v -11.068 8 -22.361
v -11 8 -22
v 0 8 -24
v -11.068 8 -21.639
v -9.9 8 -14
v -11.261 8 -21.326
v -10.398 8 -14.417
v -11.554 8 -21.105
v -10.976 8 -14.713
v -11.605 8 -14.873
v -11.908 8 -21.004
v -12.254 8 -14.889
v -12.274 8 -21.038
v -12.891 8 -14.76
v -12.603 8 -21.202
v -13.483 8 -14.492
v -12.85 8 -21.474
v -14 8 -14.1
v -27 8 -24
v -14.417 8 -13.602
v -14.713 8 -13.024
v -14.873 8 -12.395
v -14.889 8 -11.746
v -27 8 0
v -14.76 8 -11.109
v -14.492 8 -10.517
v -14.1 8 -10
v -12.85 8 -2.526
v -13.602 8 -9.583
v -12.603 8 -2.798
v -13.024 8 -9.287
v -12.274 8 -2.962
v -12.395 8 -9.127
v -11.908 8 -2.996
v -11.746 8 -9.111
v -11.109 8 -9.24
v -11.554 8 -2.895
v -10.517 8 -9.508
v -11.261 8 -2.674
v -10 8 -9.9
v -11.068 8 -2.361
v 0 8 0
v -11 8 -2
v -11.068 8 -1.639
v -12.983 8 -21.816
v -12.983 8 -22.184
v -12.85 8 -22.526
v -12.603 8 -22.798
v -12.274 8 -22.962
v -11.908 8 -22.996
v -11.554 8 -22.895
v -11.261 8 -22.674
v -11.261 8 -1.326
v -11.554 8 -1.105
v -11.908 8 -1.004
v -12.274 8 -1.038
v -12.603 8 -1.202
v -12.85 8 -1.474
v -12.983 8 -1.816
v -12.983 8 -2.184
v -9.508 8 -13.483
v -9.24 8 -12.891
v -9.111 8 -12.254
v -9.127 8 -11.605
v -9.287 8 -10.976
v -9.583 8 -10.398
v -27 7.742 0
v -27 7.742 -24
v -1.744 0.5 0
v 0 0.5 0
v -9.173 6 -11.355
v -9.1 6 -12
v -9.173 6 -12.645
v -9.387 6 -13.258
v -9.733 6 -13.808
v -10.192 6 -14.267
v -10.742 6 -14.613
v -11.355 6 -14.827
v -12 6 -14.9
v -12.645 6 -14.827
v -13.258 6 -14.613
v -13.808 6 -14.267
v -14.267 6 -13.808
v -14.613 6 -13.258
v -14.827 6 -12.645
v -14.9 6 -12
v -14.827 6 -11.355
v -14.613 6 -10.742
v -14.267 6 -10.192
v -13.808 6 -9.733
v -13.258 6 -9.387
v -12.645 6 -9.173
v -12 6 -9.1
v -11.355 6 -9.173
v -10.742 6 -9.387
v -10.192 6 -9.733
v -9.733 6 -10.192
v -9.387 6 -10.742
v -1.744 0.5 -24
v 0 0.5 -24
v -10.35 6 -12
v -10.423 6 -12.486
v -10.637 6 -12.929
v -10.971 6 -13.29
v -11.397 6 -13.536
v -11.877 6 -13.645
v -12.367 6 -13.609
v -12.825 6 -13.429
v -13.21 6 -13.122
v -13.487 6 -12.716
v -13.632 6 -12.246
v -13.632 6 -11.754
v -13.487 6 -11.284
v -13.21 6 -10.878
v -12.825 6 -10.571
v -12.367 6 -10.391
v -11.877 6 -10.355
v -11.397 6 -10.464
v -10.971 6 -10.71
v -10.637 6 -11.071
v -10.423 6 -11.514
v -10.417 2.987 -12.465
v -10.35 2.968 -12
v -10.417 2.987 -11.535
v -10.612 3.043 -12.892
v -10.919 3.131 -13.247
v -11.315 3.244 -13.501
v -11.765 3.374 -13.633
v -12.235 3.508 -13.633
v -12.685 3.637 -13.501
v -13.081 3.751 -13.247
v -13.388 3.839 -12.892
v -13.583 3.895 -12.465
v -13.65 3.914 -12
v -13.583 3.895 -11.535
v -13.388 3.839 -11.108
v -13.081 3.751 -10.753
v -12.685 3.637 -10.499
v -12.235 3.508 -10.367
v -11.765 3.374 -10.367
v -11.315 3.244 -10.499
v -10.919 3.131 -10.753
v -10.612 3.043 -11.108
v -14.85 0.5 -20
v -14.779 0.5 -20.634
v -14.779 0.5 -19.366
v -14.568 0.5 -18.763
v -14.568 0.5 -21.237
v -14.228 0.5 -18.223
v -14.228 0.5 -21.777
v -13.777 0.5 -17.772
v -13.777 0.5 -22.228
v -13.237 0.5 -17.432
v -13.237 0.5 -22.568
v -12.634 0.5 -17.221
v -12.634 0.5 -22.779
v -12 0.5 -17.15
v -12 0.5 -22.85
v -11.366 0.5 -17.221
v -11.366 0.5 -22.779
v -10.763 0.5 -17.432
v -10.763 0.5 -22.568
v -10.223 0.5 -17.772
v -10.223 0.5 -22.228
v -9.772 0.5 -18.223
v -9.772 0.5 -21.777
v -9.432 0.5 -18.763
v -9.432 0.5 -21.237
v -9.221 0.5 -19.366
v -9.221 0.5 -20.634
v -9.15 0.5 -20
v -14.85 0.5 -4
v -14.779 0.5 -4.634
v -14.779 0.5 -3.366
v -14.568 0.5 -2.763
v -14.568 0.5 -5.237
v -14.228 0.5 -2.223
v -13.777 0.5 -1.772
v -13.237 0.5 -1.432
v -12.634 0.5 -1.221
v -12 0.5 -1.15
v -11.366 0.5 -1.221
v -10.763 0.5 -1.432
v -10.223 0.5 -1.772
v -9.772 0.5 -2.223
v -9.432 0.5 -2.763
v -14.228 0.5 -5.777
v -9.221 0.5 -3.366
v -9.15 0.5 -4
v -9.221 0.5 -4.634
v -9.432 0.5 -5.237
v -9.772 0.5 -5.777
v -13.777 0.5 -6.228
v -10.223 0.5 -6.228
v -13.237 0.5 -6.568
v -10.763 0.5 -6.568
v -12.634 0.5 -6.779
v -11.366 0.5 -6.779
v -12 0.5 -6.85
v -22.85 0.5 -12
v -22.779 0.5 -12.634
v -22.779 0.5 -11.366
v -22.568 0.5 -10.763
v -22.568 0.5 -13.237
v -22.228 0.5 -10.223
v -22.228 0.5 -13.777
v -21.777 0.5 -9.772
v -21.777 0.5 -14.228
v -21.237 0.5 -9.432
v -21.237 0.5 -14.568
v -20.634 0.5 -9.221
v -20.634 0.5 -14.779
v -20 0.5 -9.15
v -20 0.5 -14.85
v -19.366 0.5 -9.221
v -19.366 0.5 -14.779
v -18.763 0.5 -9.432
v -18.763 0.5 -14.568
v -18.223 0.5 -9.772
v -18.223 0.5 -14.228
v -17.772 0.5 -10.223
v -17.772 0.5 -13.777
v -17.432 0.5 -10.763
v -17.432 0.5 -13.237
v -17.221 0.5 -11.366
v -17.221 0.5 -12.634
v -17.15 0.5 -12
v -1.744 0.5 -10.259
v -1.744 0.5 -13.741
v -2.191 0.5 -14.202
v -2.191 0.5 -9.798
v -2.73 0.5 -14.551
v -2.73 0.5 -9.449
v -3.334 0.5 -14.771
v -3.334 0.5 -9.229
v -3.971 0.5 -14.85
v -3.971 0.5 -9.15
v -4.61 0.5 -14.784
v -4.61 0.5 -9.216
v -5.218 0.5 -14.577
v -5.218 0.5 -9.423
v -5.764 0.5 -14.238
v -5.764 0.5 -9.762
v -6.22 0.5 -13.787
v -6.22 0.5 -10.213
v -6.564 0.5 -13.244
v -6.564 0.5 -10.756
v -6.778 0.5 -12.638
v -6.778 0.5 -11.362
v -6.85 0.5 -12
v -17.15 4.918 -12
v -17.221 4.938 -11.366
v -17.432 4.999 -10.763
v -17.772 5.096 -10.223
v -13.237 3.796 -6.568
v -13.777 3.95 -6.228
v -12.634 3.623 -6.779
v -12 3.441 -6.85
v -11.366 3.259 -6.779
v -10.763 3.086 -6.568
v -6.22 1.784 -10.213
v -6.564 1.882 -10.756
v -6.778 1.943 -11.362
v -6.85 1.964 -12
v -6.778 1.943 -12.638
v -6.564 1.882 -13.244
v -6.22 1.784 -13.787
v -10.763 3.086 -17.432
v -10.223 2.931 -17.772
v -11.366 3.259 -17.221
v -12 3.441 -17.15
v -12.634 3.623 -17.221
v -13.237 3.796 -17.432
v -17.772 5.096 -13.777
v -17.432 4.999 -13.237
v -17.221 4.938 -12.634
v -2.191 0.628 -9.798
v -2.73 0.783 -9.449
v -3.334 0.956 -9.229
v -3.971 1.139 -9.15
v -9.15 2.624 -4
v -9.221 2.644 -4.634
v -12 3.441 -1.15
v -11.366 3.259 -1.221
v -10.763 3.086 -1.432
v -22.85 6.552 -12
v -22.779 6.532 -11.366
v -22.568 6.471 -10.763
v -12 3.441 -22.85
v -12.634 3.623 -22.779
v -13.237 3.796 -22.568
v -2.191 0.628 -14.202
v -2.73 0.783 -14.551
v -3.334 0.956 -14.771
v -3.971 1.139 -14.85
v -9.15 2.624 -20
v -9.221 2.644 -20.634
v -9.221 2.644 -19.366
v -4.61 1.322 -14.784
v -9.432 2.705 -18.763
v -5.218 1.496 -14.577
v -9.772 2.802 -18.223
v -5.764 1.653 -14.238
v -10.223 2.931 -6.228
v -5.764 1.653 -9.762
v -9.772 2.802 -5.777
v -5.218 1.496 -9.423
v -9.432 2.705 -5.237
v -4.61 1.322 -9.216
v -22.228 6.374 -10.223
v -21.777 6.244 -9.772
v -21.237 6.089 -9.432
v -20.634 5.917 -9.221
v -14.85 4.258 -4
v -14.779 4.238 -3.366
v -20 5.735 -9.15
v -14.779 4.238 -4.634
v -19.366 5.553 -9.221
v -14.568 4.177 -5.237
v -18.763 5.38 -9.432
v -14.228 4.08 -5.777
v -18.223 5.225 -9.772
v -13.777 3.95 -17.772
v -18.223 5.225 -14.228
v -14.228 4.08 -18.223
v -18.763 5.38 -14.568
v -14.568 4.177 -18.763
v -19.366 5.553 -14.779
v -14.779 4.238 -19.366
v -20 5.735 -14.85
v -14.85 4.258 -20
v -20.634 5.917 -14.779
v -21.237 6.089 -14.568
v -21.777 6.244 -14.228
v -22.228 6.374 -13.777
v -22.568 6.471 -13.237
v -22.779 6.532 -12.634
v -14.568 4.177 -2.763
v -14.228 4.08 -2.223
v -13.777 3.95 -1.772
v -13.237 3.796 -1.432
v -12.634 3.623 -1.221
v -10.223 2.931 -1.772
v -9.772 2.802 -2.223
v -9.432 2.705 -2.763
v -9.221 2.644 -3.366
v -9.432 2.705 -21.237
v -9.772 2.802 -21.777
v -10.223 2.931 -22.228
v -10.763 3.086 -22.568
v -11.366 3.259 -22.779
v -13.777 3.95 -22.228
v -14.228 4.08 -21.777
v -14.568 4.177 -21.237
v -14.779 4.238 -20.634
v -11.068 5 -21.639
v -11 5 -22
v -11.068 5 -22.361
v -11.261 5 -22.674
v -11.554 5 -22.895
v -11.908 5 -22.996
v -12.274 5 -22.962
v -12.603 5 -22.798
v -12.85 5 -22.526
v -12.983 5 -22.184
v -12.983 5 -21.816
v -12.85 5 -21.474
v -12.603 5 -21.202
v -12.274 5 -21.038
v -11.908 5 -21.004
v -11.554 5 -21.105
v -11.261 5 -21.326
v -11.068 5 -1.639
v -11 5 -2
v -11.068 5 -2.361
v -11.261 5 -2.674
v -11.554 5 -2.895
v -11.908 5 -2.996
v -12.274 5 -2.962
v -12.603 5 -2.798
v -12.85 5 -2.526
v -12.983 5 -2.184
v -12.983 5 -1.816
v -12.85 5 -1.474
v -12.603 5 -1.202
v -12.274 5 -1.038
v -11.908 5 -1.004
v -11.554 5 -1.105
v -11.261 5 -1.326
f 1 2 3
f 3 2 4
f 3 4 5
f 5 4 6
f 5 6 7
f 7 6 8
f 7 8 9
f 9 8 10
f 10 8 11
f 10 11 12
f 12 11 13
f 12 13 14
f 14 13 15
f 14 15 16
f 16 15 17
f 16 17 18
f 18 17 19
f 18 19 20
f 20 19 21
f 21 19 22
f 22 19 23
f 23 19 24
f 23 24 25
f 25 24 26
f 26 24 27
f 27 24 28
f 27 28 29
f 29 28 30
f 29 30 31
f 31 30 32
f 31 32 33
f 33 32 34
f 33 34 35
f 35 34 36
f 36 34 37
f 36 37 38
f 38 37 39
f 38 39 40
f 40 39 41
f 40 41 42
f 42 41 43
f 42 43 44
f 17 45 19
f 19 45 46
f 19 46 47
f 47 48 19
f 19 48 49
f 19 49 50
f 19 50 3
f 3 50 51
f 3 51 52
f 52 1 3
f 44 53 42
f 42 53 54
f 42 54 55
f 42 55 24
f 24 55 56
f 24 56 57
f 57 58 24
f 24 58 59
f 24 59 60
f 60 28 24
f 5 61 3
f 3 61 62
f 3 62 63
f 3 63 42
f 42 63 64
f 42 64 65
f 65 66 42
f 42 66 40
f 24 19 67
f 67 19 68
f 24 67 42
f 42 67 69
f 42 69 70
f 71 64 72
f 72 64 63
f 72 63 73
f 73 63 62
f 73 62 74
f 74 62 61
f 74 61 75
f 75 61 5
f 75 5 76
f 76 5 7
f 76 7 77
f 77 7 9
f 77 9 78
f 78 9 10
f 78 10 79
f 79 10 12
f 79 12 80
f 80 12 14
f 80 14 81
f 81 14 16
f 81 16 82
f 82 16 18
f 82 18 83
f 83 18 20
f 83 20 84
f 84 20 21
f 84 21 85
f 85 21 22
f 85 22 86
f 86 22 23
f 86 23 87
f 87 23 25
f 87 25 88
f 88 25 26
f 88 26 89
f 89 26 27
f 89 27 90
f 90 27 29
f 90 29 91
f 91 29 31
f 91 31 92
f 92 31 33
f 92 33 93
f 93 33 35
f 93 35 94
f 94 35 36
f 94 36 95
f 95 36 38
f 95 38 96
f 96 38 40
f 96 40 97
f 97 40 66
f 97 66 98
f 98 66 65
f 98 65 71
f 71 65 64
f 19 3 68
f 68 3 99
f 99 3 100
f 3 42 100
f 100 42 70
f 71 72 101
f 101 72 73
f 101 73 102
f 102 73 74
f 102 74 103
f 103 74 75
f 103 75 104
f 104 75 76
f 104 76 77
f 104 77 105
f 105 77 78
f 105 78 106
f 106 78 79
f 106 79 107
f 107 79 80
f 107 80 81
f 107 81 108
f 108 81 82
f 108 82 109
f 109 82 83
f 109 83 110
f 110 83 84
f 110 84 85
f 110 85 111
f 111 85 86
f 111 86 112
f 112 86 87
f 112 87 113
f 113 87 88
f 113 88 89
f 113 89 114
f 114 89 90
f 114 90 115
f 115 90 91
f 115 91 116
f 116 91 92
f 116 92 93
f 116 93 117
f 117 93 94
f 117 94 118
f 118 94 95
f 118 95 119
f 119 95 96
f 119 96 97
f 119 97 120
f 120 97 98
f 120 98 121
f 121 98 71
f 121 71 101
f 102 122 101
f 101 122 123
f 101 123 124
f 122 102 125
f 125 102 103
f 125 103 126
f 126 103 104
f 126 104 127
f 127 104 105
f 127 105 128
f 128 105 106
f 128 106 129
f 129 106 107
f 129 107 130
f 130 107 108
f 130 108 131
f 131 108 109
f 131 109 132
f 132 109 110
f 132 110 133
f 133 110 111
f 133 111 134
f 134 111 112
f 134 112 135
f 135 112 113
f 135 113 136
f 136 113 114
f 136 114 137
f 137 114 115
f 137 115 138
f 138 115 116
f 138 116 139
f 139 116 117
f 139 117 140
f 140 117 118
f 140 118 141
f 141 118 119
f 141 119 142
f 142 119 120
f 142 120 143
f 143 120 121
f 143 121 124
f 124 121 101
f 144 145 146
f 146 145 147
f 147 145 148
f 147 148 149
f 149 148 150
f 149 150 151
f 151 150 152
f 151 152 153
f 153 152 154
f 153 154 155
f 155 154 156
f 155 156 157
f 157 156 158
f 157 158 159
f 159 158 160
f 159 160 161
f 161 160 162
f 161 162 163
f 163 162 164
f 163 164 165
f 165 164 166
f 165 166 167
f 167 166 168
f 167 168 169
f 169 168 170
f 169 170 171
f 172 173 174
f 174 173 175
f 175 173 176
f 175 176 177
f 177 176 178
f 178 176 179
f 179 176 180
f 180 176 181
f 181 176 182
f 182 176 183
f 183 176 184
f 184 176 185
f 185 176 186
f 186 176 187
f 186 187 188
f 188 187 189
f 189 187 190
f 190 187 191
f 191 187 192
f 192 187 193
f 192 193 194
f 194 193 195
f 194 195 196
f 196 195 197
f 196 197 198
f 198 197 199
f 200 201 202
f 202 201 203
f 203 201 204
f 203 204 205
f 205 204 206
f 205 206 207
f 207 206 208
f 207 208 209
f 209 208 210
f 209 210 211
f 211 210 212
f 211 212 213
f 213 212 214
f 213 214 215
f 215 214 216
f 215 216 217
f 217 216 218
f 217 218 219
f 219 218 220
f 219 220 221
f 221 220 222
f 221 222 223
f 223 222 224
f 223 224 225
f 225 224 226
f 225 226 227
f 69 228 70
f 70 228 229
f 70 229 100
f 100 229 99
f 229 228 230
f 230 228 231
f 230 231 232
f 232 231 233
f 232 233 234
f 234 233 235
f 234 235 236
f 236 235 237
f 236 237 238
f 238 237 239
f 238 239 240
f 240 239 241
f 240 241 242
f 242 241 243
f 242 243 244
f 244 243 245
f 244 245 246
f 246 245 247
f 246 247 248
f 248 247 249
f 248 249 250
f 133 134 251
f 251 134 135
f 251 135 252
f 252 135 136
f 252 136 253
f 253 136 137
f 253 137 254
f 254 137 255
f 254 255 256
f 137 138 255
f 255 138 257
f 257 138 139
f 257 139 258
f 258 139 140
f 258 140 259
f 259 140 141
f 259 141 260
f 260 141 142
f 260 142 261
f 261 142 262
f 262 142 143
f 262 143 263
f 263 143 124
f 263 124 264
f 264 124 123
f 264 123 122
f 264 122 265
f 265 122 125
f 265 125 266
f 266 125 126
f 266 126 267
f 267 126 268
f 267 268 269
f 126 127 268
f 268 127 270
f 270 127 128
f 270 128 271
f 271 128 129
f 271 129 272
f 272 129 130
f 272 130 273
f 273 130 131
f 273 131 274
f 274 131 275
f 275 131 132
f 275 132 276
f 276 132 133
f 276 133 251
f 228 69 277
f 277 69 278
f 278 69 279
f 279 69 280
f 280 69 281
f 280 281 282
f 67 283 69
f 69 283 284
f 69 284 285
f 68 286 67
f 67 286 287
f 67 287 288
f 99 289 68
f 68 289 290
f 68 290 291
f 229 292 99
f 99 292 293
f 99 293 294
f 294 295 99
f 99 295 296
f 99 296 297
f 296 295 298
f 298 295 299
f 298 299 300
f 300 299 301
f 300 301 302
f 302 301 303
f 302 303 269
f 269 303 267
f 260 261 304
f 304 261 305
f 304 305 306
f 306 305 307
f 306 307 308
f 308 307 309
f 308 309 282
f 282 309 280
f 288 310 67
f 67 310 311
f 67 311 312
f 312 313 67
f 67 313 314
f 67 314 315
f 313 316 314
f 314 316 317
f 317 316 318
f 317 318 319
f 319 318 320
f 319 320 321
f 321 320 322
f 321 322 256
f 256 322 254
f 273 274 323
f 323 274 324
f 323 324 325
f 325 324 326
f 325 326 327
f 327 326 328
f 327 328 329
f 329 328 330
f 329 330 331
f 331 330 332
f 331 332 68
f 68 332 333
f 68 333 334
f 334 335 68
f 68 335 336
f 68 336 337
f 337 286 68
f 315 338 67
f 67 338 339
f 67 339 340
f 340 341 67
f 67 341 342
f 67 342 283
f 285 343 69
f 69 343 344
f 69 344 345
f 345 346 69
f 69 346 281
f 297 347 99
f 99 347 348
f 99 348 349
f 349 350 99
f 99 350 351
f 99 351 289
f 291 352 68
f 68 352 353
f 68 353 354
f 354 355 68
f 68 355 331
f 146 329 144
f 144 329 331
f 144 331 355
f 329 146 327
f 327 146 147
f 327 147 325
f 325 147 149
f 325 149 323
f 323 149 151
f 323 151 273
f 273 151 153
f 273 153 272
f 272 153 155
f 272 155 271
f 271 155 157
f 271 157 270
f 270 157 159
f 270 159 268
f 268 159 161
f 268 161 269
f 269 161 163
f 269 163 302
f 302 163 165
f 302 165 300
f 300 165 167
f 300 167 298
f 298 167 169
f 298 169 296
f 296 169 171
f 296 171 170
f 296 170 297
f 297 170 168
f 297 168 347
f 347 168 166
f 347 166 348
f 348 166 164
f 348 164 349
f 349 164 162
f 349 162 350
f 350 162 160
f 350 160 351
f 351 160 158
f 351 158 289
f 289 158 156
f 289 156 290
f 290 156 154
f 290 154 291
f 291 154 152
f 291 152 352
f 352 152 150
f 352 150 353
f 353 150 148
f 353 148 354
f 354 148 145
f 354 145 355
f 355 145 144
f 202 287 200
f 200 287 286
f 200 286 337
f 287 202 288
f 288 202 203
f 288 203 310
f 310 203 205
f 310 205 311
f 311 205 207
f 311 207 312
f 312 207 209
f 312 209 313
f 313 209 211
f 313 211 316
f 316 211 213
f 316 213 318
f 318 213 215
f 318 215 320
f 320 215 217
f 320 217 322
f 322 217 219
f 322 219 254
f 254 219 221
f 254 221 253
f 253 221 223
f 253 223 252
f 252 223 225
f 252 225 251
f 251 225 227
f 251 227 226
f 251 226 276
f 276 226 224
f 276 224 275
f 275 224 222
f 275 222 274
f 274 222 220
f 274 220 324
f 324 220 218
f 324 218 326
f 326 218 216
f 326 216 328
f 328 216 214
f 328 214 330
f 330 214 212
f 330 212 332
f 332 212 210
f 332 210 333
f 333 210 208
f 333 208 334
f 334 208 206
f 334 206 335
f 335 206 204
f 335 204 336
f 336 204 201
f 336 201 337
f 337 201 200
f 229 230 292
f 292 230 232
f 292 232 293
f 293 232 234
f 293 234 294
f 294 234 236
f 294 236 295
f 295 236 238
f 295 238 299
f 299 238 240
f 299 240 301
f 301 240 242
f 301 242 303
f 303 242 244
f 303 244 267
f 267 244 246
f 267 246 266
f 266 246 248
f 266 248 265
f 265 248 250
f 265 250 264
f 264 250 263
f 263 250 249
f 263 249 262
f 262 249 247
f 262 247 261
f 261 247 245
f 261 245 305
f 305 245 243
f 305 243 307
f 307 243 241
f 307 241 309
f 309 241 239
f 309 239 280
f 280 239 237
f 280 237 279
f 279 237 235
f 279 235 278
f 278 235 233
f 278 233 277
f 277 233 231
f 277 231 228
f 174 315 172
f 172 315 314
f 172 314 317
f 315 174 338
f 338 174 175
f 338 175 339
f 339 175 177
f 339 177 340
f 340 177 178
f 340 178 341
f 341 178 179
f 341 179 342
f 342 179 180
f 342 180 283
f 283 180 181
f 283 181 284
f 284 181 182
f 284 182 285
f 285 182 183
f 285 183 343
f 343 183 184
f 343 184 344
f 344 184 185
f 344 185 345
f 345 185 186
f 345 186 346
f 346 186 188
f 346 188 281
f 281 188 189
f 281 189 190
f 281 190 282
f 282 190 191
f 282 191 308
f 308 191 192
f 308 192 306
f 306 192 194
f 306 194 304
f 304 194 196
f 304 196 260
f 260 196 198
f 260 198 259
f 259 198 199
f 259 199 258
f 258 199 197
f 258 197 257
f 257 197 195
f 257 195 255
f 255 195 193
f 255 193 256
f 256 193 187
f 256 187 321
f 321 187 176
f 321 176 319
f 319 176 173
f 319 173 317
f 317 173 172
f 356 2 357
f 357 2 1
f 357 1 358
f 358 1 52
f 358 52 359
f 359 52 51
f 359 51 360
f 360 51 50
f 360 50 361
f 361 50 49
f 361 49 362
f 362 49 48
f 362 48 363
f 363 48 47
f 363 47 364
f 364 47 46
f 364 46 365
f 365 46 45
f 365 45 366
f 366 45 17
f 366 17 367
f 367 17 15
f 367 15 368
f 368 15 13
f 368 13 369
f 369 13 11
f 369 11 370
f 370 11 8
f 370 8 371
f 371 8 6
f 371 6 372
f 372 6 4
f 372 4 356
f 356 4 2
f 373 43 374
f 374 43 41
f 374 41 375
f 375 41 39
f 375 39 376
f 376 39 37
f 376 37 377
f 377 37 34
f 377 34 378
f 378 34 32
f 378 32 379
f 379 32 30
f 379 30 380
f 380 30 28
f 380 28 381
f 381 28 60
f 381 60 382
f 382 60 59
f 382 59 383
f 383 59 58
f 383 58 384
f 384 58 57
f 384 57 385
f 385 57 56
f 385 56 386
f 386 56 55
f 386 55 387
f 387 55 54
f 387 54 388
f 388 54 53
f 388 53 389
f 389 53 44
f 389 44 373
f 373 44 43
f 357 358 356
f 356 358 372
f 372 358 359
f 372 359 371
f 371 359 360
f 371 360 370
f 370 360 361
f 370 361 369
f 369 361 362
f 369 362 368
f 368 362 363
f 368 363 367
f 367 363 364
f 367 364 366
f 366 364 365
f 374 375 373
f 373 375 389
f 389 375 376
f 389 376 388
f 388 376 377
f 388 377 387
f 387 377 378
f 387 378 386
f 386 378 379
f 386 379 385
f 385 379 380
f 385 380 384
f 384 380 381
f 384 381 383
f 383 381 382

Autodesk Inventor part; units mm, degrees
ref_plane "YZ Plane" through (0, 0, 0) normal (1, 0, 0) x (0, 1, 0)
ref_plane "XZ Plane" through (0, 0, 0) normal (0, 1, 0) x (-1, 0, 0)
sketch "Sketch1" plane through (0, 0, 0) normal (0, 1, 0) x (-1, 0, 0)
  line L0 (0, 0) -> (27, 0)
  line L1 (27, 0) -> (27, -24)
  line L2 (27, -24) -> (0, -24)
  line L3 (0, -24) -> (0, 0)
  dimension "d0" = 27
  dimension "d1" = 24
extrude "Extrusion1" add sketch "Sketch1" along normal blind 8
sketch "Sketch2" plane through (0, 0, -24) normal (0, 0, -1) x (-1, 0, 0)
  line L0 (0, 0) -> (27, 0) projected
  line L1 (0, 0) -> (46.1678, 13.2384)
  line L2 (0, 0) -> (48.0283, 0) construction
  line L3 (0, 8) -> (27, 8) projected
  line L4 (27, 0) -> (27, 8) projected
  line L5 (0, 8) -> (27, 8)
  line L6 (27, 8) -> (27, 0)
  line L7 (27, 0) -> (0, 0)
  line L8 (0, 0) -> (0, 8)
  point P0 (27, 7.7421)
  dimension "d4" = 16
extrude "Extrusion2" cut sketch "Sketch2" against normal blind 30 contours L1 L4 L0
ref_plane "Work Plane1" through (0, 0, 0) normal (0, -1, 0) x (1, 0, 0)
sketch "Sketch3" plane through (0, 0, 0) normal (0, -1, 0) x (1, 0, 0)
  line L0 (0, 0) -> (0, -24) projected
  line L1 (0, -12) -> (-4, -12)
  circle A0 centre (-4, -12) radius 2.85
  line L2 (-4, -12) -> (-20, -12)
  line L3 (-12, -12) -> (-12, -20)
  line L4 (-12, -20) -> (-12, -4)
  circle A1 centre (-12, -20) radius 2.85
  circle A2 centre (-20, -12) radius 2.85
  circle A3 centre (-12, -4) radius 2.85
  dimension "d8" = 4
  dimension "d9" = 5.7
  dimension "d10" = 16
  dimension "d11" = 8
  dimension "d12" = 16
  dimension "d13" = 5.7
  dimension "d14" = 5.7
  dimension "d15" = 5.7
extrude "Extrusion3" add sketch "Sketch3" against normal blind 8
sketch "Sketch4" plane through (-4, 0, -12) normal (0, -1, 0) x (1, 0, 0)
  line L0 (4, 12) -> (4, -12) projected
  line L1 (4, -12) -> (-23.2805, -12)
  line L2 (-23.2805, -12) -> (-23.2805, 12)
  line L3 (-23.2805, 12) -> (4, 12)
  line L4 (4, 12) -> (4, -12)
extrude "Extrusion4" cut sketch "Sketch4" against normal blind 0.5
sketch "Sketch5" plane through (0, 8, 0) normal (0, 1, 0) x (1, 0, 0)
  line L0 (0, 0) -> (0, 24) projected
  line L1 (-27, 24) -> (-27, 0) projected
  line L2 (0, 0) -> (-27, 0)
  line L3 (-27, 0) -> (-27, 24)
  line L4 (-27, 24) -> (0, 24)
  line L5 (0, 24) -> (0, 0)
  circle A0 centre (-12, 4) radius 2.85 projected
  circle A1 centre (-12, 20) radius 2.85 projected
  line L6 (-12, 4) -> (-12, 20)
  arc A2 (-1.7437, 13.7412) -> (-1.7437, 10.2588) centre (-4, 12) ccw projected
  circle A3 centre (-20, 12) radius 2.85 projected
  line L7 (-4, 12) -> (-20, 12)
  circle A4 centre (-12, 12) radius 1.65
  dimension "d20" = 3.3
extrude "Extrusion5" cut sketch "Sketch5" against normal blind 30 contours A4 L7 L6 | L6 L7 A4 | L7 A4 L6 | L6 A4 L7
sketch "Sketch6" plane through (0, 8, 0) normal (0, 1, 0) x (1, 0, 0)
  circle A0 centre (-12, 12) radius 1.65 projected
  circle A1 centre (-12, 12) radius 2.9
  point P0 (0, 0)
  dimension "d23" = 5.8
extrude "Extrusion6" cut sketch "Sketch6" against normal blind 2
sketch "Sketch7" plane through (0, 8, 0) normal (0, 1, 0) x (1, 0, 0)
  line L0 (0, 24) -> (-27, 24) projected
  line L1 (0, 0) -> (-27, 0)
  line L2 (-27, 0) -> (-27, 24)
  line L3 (-27, 24) -> (0, 24)
  line L4 (0, 24) -> (0, 0)
  circle A0 centre (-12, 12) radius 1.65 projected
  circle A1 centre (-12, 12) radius 2.9
extrude "Extrusion7" add sketch "Sketch7" along normal blind 4 contours L4 L1 L2 L0
sketch "Sketch8" plane through (0, 12, 0) normal (0, 1, 0) x (1, 0, 0)
  circle A0 centre (-12, 12) radius 2.9 projected
  line L0 (-12, 12) -> (-12, -7.1279)
  line L1 (-27, 0) -> (0, 0) projected
  line L2 (-12, 12) -> (3.3617, 12)
  line L3 (3.3617, 12) -> (3.3617, -5.9927)
  line L4 (3.3617, -5.9927) -> (-12, -5.9927)
  line L5 (-12, -5.9927) -> (-12, 12)
  line L6 (-12, 12) -> (-14, 12)
  line L7 (-14, 12) -> (-14, -1.5388)
  line L8 (-12, 12) -> (-12, 14)
  line L9 (-12, 14) -> (5.1891, 14)
  line L10 (-14, -1.5388) -> (5.1891, -1.5388)
  line L11 (5.1891, -1.5388) -> (5.1891, 14)
  line L12 (5.1891, 14) -> (-14, 14)
  line L13 (-14, 14) -> (-14, -1.5388)
  point P0 (-14, 9.9)
  point P1 (-14, 0)
  point P2 (-12, 0)
  point P3 (-12, -1.5388)
  point P4 (-9.9, 14)
  dimension "d28" = 2
  dimension "d29" = 2
extrude "Extrusion8" cut sketch "Sketch8" against normal blind 4 contours L2 L3 L10 L0 A0 | A0 L9 L11 L10 L3 L2 | L0 L1 L7 A0
sketch "Sketch10" plane through (0, 12, 0) normal (0, 1, 0) x (1, 0, 0)
  line L0 (0, 14) -> (0, 0) projected
  line L1 (-27, 24) -> (-27, 0) projected
  line L2 (0, 0) -> (-27, 0)
  line L3 (-27, 0) -> (-27, 24)
  line L4 (-27, 24) -> (0, 24)
  line L5 (0, 24) -> (0, 0)
extrude "Extrusion10" cut sketch "Sketch10" against normal blind 4
sketch "Sketch11" plane through (0, 8, 0) normal (0, 1, 0) x (1, 0, 0)
  line L0 (-1.7437, 24) -> (-27, 24) projected
  line L1 (-27, 24) -> (0, 24)
  line L2 (0, 24) -> (-13.5, 24)
  line L3 (-13.5, 24) -> (-13.5, 22)
  line L4 (-27, 0) -> (-1.7437, 0) projected
  line L5 (-27, 0) -> (0, 0)
  circle A0 centre (-12, 12) radius 1.65 projected
  line L6 (-12, 12) -> (-12, -4.3562)
  line L7 (-12, -4.3562) -> (-12, 27.2097)
  line L8 (-1.7437, 0) -> (0, 0) projected
  line L9 (-27, 24) -> (-27, 0) projected
  line L10 (0, 0) -> (-27, 0)
  line L11 (-27, 0) -> (-27, 24)
  line L12 (-27, 24) -> (0, 24)
  line L13 (0, 24) -> (0, 0)
  line L14 (-12, 0) -> (-12, 2)
  line L15 (-12, 24) -> (-12, 22)
  circle A1 centre (-12, 22) radius 1
  circle A2 centre (-12, 2) radius 1
  dimension "d36" = 2
  dimension "d37" = 2
  dimension "d38" = 2
  dimension "d39" = 2
  dimension "d40" = 2
extrude "Extrusion11" cut sketch "Sketch11" against normal blind 3 contours A1 L7 | L7 A1 | A2 L6 | L6 A2
properties part number "aruco_attachment_v1"
